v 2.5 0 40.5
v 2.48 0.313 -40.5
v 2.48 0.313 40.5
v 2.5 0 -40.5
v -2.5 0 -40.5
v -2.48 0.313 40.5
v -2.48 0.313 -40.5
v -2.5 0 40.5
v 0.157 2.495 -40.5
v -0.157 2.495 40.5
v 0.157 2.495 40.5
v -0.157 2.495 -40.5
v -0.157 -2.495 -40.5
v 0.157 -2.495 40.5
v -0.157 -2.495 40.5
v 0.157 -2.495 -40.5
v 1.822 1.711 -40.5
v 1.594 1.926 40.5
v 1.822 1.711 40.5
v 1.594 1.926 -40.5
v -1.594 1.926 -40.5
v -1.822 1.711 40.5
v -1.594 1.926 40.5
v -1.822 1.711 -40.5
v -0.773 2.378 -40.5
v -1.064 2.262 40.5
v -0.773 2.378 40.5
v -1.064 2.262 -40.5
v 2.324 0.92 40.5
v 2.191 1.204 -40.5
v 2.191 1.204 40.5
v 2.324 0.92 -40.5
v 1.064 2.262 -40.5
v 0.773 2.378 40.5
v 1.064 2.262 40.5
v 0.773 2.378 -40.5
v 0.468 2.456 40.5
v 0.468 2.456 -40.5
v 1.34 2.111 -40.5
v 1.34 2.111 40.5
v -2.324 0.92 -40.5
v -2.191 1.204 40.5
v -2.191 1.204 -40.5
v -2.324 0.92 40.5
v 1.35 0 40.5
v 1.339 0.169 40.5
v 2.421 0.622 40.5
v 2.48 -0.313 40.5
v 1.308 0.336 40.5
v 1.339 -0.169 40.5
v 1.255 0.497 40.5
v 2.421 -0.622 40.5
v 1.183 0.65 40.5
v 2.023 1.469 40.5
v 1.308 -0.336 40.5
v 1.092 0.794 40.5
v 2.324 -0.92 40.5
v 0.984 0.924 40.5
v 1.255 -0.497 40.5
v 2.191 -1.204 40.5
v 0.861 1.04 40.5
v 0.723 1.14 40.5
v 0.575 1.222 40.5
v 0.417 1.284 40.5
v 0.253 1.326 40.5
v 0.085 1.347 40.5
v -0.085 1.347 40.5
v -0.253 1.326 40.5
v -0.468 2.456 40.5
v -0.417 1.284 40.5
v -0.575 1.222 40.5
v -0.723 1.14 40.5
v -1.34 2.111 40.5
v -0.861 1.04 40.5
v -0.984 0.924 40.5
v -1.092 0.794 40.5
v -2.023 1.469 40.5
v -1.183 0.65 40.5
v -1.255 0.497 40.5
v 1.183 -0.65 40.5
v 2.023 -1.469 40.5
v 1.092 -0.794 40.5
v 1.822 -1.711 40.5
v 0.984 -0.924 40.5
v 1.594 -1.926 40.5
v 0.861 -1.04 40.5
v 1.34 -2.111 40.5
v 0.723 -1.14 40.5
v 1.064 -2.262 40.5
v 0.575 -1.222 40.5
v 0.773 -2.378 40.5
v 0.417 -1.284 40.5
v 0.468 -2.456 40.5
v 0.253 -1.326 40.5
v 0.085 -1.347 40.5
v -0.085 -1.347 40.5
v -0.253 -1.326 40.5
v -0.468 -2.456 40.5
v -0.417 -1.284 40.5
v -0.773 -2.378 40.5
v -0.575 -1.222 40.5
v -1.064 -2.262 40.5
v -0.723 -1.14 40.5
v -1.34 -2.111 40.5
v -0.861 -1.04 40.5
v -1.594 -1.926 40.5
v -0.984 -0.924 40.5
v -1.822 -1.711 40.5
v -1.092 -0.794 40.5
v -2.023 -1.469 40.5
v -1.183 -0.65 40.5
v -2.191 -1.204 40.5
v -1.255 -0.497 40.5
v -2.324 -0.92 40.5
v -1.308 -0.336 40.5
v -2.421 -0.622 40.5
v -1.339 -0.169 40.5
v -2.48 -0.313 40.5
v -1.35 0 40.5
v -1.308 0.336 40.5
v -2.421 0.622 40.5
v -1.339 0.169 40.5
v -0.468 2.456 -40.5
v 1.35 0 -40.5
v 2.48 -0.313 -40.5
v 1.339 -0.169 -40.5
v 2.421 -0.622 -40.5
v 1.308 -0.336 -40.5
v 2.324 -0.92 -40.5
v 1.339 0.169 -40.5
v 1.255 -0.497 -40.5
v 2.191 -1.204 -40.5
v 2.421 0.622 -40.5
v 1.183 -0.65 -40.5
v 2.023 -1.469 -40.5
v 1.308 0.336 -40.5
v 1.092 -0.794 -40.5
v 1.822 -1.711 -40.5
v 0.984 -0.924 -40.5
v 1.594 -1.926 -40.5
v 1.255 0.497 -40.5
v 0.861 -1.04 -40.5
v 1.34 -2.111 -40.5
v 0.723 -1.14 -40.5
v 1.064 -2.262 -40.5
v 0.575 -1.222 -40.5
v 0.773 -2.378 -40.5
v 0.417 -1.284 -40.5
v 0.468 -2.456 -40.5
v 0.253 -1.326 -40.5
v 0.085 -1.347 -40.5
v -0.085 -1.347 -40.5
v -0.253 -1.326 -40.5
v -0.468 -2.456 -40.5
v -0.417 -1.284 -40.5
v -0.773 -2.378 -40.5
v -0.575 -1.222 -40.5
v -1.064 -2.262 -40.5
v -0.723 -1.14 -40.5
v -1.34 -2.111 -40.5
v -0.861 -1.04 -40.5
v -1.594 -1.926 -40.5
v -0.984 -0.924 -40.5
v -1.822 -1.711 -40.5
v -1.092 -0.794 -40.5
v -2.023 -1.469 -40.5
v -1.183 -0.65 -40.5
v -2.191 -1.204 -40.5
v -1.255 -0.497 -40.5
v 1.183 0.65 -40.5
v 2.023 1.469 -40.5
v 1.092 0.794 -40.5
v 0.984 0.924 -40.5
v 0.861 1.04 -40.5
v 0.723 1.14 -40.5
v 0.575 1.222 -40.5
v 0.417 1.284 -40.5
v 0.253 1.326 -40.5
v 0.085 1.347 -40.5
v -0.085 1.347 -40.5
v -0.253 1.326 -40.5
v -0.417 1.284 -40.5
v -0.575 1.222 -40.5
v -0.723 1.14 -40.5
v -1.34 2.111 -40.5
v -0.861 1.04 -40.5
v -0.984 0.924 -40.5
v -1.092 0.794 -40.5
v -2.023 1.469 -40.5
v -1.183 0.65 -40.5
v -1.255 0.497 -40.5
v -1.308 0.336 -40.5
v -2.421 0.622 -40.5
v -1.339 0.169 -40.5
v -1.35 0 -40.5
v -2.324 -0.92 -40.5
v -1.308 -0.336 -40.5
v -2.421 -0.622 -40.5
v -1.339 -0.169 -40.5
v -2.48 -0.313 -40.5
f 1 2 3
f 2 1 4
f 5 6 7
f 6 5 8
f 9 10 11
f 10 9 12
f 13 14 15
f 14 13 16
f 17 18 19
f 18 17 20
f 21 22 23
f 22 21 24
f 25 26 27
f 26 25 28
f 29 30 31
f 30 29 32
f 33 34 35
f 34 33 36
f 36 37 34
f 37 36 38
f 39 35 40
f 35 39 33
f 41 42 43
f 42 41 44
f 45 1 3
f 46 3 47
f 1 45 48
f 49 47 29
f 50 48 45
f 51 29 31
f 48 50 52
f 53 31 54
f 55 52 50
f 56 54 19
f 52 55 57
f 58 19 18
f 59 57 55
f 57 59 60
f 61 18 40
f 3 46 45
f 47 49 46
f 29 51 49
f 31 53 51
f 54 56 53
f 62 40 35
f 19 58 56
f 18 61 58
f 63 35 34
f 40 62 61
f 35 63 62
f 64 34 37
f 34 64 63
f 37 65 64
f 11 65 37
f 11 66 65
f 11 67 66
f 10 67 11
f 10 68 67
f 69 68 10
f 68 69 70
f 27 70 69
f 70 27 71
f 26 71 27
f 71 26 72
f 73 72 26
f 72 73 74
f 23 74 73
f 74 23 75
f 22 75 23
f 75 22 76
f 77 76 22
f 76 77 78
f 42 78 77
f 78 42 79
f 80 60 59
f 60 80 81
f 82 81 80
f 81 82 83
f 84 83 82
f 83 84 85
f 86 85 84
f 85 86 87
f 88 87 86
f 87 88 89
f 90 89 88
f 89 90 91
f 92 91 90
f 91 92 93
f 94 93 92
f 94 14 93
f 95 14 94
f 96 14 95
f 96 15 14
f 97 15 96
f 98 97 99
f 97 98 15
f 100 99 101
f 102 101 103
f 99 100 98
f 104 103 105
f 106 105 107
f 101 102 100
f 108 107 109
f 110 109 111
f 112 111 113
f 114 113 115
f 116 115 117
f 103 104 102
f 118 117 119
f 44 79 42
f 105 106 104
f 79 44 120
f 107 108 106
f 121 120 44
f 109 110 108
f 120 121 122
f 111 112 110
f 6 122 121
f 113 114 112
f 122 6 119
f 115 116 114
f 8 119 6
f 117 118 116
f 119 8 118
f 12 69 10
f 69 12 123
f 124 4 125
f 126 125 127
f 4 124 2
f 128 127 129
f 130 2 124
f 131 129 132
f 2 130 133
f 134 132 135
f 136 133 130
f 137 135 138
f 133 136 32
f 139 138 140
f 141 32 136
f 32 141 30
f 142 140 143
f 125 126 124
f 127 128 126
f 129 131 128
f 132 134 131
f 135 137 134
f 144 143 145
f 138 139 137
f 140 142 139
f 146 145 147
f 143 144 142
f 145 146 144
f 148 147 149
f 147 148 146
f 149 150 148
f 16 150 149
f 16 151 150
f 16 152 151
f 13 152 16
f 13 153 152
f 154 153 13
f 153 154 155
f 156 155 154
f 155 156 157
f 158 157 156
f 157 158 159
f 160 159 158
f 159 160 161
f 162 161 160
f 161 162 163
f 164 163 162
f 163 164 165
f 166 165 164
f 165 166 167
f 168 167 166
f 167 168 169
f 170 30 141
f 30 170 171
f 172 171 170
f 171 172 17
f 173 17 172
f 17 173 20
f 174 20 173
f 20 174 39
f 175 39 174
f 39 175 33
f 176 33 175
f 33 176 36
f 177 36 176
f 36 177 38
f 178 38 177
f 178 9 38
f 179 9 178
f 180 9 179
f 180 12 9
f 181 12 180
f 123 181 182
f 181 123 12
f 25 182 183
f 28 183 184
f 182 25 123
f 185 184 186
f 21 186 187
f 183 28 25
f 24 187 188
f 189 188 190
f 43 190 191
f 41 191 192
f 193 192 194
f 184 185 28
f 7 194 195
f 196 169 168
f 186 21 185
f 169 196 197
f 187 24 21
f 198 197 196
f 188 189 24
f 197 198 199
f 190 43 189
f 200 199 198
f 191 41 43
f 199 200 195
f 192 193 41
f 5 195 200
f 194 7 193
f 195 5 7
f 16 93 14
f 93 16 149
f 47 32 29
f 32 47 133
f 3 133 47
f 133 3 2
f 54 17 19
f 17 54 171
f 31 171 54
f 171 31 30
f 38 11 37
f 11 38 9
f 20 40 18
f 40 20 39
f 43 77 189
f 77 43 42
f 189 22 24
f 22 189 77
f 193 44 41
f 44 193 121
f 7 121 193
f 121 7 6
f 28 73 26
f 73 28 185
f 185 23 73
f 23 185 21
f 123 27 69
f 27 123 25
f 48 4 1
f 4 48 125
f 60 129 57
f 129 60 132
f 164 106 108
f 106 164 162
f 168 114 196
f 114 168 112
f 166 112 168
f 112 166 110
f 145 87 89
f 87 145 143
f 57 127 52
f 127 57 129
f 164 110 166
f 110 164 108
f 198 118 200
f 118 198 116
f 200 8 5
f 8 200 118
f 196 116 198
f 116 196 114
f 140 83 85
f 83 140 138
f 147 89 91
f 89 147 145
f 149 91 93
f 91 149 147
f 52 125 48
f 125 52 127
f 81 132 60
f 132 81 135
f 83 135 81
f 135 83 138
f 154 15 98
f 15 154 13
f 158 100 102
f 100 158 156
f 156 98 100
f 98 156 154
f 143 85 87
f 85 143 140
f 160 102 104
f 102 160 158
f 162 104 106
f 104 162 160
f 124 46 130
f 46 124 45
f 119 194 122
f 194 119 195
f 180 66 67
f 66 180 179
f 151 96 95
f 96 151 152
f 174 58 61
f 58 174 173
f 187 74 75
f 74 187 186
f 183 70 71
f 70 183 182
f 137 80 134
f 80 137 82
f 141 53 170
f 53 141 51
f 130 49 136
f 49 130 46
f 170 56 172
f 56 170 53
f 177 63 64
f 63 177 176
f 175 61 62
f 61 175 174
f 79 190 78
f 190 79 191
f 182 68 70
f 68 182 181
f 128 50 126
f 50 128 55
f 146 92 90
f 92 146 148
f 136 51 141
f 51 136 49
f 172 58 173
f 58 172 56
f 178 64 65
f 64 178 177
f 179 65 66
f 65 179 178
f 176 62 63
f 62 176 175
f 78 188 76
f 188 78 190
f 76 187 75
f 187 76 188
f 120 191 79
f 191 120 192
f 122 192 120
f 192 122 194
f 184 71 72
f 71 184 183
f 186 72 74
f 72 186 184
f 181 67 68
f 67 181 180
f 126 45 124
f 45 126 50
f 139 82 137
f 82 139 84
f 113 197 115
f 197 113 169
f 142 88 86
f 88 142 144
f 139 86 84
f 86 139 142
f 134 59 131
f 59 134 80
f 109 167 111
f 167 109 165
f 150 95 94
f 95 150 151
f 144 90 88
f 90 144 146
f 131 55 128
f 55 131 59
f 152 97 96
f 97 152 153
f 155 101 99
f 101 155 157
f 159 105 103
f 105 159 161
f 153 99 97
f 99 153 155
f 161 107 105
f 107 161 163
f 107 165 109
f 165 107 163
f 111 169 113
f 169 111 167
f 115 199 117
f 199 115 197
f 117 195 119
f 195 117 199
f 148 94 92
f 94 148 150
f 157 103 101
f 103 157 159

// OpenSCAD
$fn = 50;


difference() {
	union() {
		translate(v = [0, 0, -40.5000000000]) {
			cylinder(h = 81, r = 2.5000000000);
		}
	}
	union() {
		translate(v = [0, 0, -100.0000000000]) {
			cylinder(h = 200, r = 1.3500000000);
		}
	}
}
